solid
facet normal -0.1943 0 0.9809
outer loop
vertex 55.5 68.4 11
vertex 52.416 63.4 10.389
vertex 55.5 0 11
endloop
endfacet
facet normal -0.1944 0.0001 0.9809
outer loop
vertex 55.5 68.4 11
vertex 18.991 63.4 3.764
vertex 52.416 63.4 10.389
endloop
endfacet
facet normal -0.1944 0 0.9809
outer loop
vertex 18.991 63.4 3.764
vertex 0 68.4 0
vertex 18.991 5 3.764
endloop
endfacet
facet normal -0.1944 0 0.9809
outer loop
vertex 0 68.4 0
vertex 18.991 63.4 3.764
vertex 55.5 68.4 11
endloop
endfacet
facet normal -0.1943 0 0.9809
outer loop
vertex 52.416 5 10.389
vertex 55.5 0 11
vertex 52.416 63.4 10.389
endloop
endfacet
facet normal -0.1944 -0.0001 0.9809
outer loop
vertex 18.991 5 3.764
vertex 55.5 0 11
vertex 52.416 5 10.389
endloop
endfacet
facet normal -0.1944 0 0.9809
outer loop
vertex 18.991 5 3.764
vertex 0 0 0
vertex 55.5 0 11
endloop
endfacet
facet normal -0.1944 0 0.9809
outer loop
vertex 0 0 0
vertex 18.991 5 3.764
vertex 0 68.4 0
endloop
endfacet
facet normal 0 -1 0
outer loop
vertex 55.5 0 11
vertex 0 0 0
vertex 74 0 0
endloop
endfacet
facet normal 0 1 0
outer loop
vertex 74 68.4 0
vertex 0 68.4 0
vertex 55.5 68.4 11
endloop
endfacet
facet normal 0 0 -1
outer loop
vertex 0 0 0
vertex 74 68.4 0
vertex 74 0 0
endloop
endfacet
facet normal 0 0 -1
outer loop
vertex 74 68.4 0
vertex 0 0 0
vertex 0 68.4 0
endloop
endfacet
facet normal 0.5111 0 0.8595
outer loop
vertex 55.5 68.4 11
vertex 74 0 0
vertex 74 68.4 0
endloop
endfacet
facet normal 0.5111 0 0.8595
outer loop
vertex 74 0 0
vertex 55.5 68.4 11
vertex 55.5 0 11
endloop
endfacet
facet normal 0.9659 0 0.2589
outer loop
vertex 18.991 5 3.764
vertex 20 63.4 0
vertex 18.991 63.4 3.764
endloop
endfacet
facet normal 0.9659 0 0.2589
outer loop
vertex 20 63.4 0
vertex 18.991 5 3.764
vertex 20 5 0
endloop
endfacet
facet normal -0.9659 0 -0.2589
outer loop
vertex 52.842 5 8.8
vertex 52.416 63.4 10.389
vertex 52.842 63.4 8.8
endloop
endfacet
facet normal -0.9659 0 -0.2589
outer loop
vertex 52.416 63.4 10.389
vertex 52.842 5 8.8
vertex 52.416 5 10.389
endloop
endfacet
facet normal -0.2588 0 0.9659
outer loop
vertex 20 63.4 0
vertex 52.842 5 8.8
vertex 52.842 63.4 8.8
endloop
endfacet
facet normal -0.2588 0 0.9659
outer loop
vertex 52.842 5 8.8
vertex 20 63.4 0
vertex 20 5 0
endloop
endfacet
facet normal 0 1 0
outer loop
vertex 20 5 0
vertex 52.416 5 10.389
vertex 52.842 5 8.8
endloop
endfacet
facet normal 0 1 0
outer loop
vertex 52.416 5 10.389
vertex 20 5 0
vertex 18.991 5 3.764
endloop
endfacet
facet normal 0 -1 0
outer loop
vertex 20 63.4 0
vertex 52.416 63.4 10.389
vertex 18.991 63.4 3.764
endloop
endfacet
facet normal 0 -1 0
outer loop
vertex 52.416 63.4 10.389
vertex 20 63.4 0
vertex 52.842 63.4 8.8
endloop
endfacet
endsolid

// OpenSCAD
//lcd 2.8 box top
$fn = $preview ? 12 : 72;
w=68.4;
l=74;
h=11;

difference() {
polyhedron( points = [ [0,0,0], [l,0,0], [l,w,0], [0,w,0], [l*3/4,0,h], [l*3/4,w,h]], faces =[[0,1,2,3], [0,4,1], [0,3,5,4], [4,5,2,1], [3,2,5] ], convexity = 2);

#translate([20, 5, 0]) rotate(a=[0,-15,0]) cube([34,58.4,10],false);
}
